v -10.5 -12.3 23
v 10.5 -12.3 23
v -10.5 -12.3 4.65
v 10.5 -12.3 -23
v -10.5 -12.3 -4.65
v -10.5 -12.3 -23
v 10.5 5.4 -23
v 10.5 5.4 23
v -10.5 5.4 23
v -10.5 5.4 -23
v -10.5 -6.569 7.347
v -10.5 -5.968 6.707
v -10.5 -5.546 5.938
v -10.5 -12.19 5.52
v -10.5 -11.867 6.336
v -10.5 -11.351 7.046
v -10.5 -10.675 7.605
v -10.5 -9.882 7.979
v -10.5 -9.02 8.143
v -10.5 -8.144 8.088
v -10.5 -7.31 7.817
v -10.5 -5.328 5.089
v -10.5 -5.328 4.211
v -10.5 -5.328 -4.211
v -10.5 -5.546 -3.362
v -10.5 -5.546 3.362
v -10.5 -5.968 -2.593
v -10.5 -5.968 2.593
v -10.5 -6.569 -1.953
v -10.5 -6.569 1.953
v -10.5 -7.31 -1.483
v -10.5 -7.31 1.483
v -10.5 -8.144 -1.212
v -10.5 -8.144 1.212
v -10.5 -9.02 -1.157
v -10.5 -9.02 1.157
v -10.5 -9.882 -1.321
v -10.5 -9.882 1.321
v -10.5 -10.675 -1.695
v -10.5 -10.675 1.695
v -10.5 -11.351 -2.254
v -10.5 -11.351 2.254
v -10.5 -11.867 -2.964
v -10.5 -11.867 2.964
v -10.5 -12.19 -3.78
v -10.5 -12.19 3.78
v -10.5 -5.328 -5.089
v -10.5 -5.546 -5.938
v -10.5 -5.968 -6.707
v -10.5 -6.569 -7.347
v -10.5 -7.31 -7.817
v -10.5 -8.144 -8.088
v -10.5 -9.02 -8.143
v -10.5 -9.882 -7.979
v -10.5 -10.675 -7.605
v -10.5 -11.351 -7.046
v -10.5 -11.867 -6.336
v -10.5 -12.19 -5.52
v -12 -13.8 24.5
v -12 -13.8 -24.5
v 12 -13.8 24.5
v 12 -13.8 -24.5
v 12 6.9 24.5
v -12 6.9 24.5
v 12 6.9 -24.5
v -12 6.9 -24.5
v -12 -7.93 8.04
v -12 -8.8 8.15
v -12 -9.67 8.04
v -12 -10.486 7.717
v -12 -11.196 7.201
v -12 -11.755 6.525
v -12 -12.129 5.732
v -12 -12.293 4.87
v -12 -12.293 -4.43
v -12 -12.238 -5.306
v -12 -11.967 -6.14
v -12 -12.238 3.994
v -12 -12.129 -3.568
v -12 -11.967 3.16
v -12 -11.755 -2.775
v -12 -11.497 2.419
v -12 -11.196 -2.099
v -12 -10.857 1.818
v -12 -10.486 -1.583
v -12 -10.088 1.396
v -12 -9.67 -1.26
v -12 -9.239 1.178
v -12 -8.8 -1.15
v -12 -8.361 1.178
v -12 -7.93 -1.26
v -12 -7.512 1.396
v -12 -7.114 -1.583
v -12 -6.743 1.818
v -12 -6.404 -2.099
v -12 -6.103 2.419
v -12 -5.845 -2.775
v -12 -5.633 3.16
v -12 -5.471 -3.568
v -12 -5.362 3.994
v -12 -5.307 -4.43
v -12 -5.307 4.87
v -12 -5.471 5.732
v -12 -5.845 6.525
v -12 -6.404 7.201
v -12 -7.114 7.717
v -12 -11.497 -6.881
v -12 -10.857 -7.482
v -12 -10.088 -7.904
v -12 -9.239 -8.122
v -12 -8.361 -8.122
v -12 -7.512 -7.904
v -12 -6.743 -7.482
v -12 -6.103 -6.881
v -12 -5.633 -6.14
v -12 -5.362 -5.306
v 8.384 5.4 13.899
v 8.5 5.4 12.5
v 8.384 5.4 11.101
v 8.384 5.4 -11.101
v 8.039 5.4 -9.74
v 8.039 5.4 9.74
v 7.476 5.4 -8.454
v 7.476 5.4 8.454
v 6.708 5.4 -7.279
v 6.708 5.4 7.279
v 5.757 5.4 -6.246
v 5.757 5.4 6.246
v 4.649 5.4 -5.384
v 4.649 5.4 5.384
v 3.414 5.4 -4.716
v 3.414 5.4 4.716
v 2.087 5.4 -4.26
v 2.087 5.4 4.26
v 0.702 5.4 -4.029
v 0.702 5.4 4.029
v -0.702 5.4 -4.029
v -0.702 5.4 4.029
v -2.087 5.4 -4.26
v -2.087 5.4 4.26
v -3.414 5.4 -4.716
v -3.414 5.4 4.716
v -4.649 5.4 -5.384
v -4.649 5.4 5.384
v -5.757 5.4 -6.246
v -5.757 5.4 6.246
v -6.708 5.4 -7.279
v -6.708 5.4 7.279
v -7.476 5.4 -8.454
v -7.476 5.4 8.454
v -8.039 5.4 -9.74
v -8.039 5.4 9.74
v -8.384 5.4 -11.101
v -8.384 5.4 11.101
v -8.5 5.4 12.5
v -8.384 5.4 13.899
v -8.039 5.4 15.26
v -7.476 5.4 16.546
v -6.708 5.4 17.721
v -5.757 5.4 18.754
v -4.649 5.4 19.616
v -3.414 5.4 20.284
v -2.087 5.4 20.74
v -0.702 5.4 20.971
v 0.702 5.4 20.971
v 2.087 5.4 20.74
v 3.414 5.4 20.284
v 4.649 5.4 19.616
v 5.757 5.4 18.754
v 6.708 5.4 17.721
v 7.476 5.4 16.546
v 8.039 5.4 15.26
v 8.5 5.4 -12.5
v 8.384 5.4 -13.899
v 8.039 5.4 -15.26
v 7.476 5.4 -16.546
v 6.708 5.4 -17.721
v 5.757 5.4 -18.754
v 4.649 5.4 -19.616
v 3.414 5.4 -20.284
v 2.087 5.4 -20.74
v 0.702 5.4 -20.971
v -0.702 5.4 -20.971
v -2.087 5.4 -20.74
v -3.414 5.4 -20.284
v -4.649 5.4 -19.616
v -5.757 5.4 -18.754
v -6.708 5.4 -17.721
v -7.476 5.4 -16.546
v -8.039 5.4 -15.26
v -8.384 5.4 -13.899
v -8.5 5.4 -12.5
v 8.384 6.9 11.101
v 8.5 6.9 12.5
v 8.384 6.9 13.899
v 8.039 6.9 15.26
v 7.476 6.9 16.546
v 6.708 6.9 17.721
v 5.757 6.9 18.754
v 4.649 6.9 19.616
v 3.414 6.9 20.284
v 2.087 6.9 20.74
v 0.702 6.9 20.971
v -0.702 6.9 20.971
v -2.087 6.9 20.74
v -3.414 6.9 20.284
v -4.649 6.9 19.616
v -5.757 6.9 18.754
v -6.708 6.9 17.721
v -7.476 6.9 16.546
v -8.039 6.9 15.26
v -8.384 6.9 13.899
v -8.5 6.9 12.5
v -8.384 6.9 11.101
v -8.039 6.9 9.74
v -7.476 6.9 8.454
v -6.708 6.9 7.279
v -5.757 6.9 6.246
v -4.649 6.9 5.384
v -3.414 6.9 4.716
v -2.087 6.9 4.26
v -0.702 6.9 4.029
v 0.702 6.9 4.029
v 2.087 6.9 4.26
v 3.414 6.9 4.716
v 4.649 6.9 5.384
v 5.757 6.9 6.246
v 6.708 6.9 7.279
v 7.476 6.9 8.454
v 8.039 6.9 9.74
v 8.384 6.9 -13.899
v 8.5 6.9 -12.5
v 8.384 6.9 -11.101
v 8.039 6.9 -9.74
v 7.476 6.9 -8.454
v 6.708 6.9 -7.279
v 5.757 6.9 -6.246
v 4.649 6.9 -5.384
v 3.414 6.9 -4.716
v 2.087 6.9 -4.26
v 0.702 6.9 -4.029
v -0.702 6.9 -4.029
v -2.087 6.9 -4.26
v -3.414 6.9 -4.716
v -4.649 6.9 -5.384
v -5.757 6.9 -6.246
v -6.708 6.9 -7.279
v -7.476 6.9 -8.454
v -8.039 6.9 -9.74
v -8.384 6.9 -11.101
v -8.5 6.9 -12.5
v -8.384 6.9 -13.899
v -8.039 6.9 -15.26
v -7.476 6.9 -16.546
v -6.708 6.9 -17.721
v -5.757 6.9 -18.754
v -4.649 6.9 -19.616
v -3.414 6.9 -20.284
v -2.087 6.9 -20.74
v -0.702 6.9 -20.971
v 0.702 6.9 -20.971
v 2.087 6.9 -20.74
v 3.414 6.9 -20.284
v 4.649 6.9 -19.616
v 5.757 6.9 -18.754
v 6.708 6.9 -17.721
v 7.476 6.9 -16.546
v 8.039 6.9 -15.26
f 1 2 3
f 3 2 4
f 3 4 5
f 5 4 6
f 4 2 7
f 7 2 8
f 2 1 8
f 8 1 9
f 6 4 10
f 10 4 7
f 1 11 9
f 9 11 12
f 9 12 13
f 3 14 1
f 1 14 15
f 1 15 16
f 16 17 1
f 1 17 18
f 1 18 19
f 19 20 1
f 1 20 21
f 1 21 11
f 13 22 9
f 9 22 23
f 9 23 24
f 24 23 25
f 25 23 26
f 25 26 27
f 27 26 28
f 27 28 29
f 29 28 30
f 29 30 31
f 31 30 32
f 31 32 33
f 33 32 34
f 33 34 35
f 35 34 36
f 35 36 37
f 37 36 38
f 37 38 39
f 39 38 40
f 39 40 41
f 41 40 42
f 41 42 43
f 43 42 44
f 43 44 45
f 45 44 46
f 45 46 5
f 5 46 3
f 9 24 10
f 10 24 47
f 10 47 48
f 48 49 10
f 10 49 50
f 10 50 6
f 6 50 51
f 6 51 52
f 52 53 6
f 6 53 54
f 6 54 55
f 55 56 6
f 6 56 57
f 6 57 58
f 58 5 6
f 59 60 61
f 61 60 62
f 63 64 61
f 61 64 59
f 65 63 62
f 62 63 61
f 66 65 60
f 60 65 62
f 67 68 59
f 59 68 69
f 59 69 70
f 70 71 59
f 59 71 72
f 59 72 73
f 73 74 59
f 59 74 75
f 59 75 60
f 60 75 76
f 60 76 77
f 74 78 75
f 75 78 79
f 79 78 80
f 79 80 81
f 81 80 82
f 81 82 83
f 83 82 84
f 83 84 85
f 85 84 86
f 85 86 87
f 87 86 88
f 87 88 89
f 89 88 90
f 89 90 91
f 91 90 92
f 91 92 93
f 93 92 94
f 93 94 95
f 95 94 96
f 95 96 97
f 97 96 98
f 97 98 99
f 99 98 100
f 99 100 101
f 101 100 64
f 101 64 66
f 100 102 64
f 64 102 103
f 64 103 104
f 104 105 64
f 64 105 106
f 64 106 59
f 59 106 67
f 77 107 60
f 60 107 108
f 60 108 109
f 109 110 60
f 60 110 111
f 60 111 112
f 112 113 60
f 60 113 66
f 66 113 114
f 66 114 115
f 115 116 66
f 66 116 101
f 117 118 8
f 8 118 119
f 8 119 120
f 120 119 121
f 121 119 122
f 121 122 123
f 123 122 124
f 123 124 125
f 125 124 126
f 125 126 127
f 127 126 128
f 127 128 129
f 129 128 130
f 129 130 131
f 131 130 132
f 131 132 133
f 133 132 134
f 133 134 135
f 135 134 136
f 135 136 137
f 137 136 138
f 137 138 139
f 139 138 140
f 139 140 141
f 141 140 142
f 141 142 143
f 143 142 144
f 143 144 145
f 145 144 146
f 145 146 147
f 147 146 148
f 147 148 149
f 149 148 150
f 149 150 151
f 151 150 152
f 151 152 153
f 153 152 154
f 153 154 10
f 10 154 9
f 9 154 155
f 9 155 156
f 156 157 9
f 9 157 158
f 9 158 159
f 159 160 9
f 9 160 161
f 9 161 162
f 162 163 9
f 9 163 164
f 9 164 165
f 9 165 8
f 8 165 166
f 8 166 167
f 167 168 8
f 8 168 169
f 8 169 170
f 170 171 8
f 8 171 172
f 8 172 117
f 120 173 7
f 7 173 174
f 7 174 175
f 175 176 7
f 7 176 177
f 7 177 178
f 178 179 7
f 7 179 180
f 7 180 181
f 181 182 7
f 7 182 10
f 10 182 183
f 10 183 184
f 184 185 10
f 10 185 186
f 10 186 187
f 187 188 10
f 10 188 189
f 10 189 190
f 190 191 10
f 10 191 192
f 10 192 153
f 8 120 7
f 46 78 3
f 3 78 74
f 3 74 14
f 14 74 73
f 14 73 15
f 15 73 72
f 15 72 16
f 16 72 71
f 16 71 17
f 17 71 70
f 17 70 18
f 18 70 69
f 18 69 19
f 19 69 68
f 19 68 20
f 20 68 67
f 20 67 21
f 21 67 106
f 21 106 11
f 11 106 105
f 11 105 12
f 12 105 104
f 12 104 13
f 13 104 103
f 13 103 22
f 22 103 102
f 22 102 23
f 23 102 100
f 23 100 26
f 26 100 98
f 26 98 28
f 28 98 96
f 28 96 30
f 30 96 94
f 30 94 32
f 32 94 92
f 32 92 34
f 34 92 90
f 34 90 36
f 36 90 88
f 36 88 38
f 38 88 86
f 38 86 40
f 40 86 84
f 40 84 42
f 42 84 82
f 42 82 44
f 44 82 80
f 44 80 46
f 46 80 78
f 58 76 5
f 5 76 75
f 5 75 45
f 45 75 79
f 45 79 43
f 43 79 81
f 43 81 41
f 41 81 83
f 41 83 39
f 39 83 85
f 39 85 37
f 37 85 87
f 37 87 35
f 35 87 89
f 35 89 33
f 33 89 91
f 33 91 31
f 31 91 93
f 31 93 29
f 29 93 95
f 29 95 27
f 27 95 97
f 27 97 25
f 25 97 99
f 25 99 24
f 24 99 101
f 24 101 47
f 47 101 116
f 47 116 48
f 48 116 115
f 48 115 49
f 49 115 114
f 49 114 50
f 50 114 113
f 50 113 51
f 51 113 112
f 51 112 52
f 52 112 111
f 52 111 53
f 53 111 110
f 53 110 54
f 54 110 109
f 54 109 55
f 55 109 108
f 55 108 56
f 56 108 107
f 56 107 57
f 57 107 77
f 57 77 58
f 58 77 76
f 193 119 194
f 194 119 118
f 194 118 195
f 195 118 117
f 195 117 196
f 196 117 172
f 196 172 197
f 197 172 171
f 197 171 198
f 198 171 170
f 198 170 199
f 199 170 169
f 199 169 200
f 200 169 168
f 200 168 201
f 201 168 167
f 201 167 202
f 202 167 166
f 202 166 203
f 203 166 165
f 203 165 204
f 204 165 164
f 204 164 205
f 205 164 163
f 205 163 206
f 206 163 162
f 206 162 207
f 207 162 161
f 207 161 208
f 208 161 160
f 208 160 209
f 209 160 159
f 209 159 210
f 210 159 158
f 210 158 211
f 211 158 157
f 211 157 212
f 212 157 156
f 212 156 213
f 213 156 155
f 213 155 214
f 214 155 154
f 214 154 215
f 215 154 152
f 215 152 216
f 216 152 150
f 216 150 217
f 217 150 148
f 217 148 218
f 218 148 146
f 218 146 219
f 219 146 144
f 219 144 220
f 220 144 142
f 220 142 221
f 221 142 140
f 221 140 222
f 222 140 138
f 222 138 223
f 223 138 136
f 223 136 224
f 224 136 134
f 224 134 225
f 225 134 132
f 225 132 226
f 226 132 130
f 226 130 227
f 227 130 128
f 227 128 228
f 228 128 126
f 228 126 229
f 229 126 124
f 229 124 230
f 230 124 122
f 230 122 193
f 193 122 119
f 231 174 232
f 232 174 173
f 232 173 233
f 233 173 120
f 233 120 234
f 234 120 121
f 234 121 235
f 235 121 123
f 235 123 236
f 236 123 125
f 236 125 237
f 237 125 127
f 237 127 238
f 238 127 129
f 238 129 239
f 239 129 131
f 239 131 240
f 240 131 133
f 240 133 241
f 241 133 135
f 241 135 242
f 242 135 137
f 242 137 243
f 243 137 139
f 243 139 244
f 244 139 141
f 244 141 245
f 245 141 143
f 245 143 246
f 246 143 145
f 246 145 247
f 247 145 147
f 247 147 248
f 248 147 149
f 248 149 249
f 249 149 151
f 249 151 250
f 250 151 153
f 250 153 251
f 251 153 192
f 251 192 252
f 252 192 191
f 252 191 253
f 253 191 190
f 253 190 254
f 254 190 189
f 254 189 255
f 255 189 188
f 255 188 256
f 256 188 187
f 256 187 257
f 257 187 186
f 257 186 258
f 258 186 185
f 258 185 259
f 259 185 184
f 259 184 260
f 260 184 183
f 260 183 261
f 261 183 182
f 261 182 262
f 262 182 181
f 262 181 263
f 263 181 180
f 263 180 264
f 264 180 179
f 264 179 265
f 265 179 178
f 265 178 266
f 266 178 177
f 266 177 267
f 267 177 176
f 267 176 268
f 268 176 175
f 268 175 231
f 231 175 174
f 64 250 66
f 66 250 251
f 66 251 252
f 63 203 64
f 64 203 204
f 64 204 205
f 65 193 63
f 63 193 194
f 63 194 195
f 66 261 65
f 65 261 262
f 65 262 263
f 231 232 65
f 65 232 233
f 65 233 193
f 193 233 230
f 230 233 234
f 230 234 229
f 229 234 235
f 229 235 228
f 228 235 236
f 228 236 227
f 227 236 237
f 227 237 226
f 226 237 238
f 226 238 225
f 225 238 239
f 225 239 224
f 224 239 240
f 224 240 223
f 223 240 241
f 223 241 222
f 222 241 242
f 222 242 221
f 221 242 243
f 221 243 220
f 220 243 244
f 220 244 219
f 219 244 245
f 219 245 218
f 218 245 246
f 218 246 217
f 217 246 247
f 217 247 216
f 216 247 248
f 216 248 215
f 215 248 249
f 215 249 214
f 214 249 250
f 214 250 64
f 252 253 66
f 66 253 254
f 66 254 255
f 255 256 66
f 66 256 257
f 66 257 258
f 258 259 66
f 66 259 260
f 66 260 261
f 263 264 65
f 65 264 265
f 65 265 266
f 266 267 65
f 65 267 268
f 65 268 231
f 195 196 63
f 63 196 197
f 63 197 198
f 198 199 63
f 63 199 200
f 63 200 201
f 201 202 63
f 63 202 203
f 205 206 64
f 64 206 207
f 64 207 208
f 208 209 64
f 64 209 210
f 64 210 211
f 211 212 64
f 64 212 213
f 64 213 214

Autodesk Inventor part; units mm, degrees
ref_plane "YZ Plane" through (0, 0, 0) normal (1, 0, 0) x (0, 1, 0)
ref_plane "XZ Plane" through (0, 0, 0) normal (0, 1, 0) x (-1, 0, 0)
ref_plane "XY Plane" through (0, 0, 0) normal (0, 0, 1) x (1, 0, 0)
sketch "Sketch1" plane through (0, 0, 0) normal (0, 1, 0) x (-1, 0, 0)
  line L0 (-12, -24.5) -> (12, -24.5)
  line L1 (12, -24.5) -> (12, 24.5)
  line L2 (12, 24.5) -> (-12, 24.5)
  line L3 (-12, 24.5) -> (-12, -24.5)
  line L4 (-12, -24.5) -> (12, 24.5) construction
  line L5 (12, -24.5) -> (-12, 24.5) construction
  point P0 (0, 0)
  dimension "d0" = 24
  dimension "d1" = 49
extrude "Extrusion1" add sketch "Sketch1" along normal blind 5.4 and the other way blind 13.8
shell "Shell1" thickness 1.5 removed faces 1 at (4, 5.4, 8.1667)
sketch "Sketch2" plane through (-12, -13.8, 24.5) normal (-1, 0, 0) x (0, 0, 1)
  line L0 (0, 0) -> (0, 19.2) projected
  line L1 (-49, 19.2) -> (-49, 0) projected
  line L2 (0, 0) -> (-49, 0) projected
  line L3 (-49, 0) -> (-49, 19.2) projected
  line L4 (-49, 1.5) -> (0, 1.5)
  circle A0 centre (-29.15, 5) radius 3.5
  line L5 (-24.5, 13.8) -> (-24.5, 1.5)
  line L6 (-24.5, 11) -> (0, 11)
  line L7 (-24.5, 13) -> (-49, 13)
  circle A1 centre (-19.85, 5) radius 3.5
  point P0 (-24.5, 13.8)
  dimension "d7" = 1.5
  dimension "d8" = 3.5
  dimension "d9" = 7
  dimension "d10" = 4.65
  dimension "d11" = 7
  dimension "d12" = 1.15
extrude "Extrusion2" cut sketch "Sketch2" against normal blind 5.4 contours A1 | A0
sketch "Sketch3" plane through (0, 5.4, 0) normal (0, 1, 0) x (1, 0, 0)
  line L0 (-10.5, 23) -> (10.5, 23) projected
  line L1 (10.5, 23) -> (10.5, -23) projected
  line L2 (10.5, -23) -> (-10.5, -23) projected
  line L3 (-12, 24.5) -> (-12, -24.5) projected
  line L4 (-12, -24.5) -> (12, -24.5) projected
  line L5 (12, -24.5) -> (12, 24.5) projected
  line L6 (12, 24.5) -> (-12, 24.5) projected
  line L7 (12, 24.5) -> (-12, 24.5)
  line L8 (-12, 24.5) -> (-12, -24.5)
  line L9 (-12, -24.5) -> (12, -24.5)
  line L10 (12, -24.5) -> (12, 24.5)
  circle A0 centre (0, 12.5) radius 8.5
  circle A1 centre (0, -12.5) radius 8.5
  point P0 (0, 0)
  dimension "d15" = 17
  dimension "d16" = 2
  dimension "d17" = 2
  dimension "d18" = 17
  dimension "d19" = 2
  dimension "d20" = 2
extrude "Extrusion3" add sketch "Sketch3" along normal blind 1.5
properties part number "carcasaXeotype_ULTRASONIC"
